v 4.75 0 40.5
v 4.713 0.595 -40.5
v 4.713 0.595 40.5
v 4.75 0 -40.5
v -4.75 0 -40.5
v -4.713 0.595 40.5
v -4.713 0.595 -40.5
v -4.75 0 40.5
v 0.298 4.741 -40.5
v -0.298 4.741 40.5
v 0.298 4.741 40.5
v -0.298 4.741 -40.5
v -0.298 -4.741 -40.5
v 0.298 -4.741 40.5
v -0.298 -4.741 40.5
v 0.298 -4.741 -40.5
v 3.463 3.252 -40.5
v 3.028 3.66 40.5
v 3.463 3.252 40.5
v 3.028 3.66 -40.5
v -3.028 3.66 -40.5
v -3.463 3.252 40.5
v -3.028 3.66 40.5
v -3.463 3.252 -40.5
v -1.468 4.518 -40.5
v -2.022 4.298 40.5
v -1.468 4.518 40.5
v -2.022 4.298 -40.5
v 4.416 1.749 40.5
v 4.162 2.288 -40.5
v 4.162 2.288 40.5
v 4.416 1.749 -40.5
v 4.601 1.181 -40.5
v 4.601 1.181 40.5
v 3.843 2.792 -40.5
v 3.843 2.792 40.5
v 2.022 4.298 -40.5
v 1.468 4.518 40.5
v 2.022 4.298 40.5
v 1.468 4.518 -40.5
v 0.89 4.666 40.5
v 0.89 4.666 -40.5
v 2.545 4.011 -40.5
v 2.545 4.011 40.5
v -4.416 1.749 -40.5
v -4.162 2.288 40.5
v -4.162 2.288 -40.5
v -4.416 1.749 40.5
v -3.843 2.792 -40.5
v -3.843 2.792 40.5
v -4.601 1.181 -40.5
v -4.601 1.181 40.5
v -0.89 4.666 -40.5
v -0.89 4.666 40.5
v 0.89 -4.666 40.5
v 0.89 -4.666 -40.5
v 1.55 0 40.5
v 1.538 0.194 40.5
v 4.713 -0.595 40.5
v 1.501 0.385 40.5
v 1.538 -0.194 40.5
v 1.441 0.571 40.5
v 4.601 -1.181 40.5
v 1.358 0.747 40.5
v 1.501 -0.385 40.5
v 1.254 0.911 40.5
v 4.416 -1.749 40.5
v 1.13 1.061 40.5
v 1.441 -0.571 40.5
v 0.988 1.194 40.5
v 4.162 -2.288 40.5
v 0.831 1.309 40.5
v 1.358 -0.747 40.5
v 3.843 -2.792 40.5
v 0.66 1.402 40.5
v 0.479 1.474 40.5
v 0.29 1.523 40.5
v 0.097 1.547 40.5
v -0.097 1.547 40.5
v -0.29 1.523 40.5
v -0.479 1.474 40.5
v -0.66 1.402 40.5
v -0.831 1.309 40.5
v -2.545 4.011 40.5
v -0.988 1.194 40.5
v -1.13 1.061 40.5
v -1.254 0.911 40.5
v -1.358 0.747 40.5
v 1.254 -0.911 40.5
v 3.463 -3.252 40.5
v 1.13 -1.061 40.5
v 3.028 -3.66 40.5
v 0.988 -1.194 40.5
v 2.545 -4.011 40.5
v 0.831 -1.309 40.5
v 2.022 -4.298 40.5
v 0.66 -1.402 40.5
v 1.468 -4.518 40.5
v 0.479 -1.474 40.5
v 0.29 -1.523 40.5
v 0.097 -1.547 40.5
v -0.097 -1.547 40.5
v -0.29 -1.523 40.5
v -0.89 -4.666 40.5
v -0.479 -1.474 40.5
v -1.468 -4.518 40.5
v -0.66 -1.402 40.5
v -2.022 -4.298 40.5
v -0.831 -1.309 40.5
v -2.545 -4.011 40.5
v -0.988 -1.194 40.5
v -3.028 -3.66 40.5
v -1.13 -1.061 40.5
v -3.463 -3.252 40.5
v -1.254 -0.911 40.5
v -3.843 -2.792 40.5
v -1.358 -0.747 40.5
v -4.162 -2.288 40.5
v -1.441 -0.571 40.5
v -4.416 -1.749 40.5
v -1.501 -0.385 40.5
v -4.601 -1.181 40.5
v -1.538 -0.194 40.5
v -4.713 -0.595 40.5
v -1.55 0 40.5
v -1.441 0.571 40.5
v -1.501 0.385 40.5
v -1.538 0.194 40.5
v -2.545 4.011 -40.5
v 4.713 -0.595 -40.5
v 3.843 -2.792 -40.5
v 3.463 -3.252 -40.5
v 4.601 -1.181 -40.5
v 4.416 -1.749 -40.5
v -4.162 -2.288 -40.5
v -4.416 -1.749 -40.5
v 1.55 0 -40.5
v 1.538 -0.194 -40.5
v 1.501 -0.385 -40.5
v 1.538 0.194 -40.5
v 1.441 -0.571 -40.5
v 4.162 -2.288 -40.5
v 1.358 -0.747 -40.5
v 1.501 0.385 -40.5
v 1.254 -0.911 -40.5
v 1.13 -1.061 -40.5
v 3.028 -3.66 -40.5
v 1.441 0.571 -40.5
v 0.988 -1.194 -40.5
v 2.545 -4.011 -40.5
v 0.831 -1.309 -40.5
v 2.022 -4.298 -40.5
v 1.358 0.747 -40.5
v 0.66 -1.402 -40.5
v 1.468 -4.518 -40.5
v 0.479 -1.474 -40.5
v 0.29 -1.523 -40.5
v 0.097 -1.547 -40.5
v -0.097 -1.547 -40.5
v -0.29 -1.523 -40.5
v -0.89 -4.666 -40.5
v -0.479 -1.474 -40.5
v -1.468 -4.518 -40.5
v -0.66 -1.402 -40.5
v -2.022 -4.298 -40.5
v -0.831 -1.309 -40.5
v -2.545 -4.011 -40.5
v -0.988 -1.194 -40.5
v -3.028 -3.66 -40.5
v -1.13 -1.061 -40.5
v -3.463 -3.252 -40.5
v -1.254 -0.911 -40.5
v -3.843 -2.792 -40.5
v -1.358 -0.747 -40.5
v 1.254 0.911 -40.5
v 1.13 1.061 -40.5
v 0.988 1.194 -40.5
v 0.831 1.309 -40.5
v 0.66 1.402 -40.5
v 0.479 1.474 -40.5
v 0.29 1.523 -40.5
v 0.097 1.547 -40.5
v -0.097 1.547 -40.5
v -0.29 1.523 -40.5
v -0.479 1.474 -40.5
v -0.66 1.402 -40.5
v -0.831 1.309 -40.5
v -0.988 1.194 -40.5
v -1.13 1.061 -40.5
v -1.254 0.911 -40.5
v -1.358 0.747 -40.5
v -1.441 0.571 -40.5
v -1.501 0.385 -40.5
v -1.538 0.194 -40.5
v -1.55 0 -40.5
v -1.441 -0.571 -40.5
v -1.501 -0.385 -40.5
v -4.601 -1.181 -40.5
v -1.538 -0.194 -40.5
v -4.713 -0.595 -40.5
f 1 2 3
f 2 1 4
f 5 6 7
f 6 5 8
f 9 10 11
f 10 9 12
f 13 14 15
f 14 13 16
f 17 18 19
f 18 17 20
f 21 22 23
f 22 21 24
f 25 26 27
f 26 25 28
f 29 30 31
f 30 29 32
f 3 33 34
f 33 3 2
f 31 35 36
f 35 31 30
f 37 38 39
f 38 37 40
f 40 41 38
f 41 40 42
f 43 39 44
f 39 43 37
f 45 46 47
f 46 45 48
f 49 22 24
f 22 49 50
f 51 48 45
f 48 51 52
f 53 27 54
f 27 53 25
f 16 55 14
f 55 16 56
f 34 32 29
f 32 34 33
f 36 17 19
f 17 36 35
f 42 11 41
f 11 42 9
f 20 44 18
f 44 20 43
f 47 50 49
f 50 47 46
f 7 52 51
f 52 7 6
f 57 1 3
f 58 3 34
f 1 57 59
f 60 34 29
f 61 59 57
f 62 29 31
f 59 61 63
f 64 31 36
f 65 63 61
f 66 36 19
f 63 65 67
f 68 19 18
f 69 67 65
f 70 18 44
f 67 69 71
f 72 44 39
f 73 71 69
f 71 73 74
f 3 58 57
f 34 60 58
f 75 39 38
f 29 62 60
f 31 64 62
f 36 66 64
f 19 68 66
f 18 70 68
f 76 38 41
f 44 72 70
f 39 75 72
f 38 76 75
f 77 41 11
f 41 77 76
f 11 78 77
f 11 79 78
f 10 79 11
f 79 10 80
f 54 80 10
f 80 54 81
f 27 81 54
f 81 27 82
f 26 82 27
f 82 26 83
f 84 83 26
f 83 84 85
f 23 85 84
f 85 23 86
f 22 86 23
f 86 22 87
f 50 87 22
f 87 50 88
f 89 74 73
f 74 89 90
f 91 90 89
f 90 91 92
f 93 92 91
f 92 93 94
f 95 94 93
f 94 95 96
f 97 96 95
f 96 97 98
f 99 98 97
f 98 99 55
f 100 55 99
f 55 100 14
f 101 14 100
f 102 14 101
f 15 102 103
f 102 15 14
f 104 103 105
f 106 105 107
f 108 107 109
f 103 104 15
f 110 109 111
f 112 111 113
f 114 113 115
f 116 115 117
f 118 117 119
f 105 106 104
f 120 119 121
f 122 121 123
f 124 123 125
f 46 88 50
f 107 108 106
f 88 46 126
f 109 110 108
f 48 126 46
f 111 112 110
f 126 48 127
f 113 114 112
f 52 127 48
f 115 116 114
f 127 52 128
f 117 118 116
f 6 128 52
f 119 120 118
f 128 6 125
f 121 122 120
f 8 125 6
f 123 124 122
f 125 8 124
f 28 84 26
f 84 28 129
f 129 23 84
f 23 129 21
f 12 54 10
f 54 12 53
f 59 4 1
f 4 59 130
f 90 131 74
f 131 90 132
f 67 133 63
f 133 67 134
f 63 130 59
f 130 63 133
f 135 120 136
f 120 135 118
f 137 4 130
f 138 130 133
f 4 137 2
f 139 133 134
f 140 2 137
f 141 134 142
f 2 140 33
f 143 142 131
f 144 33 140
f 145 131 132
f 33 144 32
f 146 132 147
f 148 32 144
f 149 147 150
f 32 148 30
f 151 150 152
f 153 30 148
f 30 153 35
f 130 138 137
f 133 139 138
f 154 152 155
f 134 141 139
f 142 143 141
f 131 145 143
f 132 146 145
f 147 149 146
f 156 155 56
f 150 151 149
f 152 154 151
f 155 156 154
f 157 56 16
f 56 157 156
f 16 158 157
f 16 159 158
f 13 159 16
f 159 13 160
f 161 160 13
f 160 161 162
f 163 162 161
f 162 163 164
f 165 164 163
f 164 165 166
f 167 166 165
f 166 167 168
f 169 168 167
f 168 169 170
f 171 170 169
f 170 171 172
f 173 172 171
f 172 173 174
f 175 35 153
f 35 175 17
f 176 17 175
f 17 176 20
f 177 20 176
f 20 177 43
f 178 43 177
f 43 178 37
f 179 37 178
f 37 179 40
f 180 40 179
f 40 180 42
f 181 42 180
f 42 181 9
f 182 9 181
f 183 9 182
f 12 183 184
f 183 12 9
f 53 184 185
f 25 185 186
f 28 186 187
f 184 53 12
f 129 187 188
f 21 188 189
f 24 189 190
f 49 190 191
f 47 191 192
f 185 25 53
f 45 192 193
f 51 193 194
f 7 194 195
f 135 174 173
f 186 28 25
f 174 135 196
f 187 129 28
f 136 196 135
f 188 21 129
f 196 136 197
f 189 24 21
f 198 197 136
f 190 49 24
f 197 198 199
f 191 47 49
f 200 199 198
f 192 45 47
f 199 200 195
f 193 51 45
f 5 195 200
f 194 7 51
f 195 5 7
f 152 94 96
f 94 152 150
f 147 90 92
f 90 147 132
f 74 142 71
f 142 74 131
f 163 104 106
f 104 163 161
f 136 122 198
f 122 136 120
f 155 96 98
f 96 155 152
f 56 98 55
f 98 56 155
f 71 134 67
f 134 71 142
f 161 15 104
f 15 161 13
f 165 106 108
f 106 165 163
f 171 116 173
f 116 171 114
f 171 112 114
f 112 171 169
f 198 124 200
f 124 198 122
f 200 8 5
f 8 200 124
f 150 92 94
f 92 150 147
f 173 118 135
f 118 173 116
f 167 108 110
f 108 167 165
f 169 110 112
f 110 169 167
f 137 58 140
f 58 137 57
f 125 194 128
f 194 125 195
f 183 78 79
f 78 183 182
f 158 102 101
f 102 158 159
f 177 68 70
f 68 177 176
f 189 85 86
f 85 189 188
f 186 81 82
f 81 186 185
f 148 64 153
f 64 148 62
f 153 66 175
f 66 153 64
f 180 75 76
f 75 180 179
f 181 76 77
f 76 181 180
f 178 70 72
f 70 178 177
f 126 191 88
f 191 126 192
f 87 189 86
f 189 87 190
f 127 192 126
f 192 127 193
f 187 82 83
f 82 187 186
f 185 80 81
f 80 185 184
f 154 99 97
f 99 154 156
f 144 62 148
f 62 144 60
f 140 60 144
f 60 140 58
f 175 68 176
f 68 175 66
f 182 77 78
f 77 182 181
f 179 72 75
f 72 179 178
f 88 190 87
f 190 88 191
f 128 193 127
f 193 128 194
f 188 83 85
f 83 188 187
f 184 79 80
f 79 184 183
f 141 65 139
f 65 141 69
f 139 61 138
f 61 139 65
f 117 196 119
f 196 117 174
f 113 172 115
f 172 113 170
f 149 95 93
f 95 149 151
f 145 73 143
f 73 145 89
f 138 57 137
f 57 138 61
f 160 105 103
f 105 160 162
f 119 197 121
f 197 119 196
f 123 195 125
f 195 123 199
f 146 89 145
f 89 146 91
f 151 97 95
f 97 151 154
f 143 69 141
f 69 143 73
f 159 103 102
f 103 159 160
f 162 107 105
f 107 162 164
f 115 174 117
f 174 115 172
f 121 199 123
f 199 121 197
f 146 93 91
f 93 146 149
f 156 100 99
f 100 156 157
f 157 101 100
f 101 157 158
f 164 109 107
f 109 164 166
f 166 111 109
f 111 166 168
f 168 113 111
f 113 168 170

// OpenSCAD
$fn = 50;


difference() {
	union() {
		translate(v = [0, 0, -40.5000000000]) {
			cylinder(h = 81, r = 4.7500000000);
		}
	}
	union() {
		translate(v = [0, 0, -100.0000000000]) {
			cylinder(h = 200, r = 1.5500000000);
		}
	}
}
